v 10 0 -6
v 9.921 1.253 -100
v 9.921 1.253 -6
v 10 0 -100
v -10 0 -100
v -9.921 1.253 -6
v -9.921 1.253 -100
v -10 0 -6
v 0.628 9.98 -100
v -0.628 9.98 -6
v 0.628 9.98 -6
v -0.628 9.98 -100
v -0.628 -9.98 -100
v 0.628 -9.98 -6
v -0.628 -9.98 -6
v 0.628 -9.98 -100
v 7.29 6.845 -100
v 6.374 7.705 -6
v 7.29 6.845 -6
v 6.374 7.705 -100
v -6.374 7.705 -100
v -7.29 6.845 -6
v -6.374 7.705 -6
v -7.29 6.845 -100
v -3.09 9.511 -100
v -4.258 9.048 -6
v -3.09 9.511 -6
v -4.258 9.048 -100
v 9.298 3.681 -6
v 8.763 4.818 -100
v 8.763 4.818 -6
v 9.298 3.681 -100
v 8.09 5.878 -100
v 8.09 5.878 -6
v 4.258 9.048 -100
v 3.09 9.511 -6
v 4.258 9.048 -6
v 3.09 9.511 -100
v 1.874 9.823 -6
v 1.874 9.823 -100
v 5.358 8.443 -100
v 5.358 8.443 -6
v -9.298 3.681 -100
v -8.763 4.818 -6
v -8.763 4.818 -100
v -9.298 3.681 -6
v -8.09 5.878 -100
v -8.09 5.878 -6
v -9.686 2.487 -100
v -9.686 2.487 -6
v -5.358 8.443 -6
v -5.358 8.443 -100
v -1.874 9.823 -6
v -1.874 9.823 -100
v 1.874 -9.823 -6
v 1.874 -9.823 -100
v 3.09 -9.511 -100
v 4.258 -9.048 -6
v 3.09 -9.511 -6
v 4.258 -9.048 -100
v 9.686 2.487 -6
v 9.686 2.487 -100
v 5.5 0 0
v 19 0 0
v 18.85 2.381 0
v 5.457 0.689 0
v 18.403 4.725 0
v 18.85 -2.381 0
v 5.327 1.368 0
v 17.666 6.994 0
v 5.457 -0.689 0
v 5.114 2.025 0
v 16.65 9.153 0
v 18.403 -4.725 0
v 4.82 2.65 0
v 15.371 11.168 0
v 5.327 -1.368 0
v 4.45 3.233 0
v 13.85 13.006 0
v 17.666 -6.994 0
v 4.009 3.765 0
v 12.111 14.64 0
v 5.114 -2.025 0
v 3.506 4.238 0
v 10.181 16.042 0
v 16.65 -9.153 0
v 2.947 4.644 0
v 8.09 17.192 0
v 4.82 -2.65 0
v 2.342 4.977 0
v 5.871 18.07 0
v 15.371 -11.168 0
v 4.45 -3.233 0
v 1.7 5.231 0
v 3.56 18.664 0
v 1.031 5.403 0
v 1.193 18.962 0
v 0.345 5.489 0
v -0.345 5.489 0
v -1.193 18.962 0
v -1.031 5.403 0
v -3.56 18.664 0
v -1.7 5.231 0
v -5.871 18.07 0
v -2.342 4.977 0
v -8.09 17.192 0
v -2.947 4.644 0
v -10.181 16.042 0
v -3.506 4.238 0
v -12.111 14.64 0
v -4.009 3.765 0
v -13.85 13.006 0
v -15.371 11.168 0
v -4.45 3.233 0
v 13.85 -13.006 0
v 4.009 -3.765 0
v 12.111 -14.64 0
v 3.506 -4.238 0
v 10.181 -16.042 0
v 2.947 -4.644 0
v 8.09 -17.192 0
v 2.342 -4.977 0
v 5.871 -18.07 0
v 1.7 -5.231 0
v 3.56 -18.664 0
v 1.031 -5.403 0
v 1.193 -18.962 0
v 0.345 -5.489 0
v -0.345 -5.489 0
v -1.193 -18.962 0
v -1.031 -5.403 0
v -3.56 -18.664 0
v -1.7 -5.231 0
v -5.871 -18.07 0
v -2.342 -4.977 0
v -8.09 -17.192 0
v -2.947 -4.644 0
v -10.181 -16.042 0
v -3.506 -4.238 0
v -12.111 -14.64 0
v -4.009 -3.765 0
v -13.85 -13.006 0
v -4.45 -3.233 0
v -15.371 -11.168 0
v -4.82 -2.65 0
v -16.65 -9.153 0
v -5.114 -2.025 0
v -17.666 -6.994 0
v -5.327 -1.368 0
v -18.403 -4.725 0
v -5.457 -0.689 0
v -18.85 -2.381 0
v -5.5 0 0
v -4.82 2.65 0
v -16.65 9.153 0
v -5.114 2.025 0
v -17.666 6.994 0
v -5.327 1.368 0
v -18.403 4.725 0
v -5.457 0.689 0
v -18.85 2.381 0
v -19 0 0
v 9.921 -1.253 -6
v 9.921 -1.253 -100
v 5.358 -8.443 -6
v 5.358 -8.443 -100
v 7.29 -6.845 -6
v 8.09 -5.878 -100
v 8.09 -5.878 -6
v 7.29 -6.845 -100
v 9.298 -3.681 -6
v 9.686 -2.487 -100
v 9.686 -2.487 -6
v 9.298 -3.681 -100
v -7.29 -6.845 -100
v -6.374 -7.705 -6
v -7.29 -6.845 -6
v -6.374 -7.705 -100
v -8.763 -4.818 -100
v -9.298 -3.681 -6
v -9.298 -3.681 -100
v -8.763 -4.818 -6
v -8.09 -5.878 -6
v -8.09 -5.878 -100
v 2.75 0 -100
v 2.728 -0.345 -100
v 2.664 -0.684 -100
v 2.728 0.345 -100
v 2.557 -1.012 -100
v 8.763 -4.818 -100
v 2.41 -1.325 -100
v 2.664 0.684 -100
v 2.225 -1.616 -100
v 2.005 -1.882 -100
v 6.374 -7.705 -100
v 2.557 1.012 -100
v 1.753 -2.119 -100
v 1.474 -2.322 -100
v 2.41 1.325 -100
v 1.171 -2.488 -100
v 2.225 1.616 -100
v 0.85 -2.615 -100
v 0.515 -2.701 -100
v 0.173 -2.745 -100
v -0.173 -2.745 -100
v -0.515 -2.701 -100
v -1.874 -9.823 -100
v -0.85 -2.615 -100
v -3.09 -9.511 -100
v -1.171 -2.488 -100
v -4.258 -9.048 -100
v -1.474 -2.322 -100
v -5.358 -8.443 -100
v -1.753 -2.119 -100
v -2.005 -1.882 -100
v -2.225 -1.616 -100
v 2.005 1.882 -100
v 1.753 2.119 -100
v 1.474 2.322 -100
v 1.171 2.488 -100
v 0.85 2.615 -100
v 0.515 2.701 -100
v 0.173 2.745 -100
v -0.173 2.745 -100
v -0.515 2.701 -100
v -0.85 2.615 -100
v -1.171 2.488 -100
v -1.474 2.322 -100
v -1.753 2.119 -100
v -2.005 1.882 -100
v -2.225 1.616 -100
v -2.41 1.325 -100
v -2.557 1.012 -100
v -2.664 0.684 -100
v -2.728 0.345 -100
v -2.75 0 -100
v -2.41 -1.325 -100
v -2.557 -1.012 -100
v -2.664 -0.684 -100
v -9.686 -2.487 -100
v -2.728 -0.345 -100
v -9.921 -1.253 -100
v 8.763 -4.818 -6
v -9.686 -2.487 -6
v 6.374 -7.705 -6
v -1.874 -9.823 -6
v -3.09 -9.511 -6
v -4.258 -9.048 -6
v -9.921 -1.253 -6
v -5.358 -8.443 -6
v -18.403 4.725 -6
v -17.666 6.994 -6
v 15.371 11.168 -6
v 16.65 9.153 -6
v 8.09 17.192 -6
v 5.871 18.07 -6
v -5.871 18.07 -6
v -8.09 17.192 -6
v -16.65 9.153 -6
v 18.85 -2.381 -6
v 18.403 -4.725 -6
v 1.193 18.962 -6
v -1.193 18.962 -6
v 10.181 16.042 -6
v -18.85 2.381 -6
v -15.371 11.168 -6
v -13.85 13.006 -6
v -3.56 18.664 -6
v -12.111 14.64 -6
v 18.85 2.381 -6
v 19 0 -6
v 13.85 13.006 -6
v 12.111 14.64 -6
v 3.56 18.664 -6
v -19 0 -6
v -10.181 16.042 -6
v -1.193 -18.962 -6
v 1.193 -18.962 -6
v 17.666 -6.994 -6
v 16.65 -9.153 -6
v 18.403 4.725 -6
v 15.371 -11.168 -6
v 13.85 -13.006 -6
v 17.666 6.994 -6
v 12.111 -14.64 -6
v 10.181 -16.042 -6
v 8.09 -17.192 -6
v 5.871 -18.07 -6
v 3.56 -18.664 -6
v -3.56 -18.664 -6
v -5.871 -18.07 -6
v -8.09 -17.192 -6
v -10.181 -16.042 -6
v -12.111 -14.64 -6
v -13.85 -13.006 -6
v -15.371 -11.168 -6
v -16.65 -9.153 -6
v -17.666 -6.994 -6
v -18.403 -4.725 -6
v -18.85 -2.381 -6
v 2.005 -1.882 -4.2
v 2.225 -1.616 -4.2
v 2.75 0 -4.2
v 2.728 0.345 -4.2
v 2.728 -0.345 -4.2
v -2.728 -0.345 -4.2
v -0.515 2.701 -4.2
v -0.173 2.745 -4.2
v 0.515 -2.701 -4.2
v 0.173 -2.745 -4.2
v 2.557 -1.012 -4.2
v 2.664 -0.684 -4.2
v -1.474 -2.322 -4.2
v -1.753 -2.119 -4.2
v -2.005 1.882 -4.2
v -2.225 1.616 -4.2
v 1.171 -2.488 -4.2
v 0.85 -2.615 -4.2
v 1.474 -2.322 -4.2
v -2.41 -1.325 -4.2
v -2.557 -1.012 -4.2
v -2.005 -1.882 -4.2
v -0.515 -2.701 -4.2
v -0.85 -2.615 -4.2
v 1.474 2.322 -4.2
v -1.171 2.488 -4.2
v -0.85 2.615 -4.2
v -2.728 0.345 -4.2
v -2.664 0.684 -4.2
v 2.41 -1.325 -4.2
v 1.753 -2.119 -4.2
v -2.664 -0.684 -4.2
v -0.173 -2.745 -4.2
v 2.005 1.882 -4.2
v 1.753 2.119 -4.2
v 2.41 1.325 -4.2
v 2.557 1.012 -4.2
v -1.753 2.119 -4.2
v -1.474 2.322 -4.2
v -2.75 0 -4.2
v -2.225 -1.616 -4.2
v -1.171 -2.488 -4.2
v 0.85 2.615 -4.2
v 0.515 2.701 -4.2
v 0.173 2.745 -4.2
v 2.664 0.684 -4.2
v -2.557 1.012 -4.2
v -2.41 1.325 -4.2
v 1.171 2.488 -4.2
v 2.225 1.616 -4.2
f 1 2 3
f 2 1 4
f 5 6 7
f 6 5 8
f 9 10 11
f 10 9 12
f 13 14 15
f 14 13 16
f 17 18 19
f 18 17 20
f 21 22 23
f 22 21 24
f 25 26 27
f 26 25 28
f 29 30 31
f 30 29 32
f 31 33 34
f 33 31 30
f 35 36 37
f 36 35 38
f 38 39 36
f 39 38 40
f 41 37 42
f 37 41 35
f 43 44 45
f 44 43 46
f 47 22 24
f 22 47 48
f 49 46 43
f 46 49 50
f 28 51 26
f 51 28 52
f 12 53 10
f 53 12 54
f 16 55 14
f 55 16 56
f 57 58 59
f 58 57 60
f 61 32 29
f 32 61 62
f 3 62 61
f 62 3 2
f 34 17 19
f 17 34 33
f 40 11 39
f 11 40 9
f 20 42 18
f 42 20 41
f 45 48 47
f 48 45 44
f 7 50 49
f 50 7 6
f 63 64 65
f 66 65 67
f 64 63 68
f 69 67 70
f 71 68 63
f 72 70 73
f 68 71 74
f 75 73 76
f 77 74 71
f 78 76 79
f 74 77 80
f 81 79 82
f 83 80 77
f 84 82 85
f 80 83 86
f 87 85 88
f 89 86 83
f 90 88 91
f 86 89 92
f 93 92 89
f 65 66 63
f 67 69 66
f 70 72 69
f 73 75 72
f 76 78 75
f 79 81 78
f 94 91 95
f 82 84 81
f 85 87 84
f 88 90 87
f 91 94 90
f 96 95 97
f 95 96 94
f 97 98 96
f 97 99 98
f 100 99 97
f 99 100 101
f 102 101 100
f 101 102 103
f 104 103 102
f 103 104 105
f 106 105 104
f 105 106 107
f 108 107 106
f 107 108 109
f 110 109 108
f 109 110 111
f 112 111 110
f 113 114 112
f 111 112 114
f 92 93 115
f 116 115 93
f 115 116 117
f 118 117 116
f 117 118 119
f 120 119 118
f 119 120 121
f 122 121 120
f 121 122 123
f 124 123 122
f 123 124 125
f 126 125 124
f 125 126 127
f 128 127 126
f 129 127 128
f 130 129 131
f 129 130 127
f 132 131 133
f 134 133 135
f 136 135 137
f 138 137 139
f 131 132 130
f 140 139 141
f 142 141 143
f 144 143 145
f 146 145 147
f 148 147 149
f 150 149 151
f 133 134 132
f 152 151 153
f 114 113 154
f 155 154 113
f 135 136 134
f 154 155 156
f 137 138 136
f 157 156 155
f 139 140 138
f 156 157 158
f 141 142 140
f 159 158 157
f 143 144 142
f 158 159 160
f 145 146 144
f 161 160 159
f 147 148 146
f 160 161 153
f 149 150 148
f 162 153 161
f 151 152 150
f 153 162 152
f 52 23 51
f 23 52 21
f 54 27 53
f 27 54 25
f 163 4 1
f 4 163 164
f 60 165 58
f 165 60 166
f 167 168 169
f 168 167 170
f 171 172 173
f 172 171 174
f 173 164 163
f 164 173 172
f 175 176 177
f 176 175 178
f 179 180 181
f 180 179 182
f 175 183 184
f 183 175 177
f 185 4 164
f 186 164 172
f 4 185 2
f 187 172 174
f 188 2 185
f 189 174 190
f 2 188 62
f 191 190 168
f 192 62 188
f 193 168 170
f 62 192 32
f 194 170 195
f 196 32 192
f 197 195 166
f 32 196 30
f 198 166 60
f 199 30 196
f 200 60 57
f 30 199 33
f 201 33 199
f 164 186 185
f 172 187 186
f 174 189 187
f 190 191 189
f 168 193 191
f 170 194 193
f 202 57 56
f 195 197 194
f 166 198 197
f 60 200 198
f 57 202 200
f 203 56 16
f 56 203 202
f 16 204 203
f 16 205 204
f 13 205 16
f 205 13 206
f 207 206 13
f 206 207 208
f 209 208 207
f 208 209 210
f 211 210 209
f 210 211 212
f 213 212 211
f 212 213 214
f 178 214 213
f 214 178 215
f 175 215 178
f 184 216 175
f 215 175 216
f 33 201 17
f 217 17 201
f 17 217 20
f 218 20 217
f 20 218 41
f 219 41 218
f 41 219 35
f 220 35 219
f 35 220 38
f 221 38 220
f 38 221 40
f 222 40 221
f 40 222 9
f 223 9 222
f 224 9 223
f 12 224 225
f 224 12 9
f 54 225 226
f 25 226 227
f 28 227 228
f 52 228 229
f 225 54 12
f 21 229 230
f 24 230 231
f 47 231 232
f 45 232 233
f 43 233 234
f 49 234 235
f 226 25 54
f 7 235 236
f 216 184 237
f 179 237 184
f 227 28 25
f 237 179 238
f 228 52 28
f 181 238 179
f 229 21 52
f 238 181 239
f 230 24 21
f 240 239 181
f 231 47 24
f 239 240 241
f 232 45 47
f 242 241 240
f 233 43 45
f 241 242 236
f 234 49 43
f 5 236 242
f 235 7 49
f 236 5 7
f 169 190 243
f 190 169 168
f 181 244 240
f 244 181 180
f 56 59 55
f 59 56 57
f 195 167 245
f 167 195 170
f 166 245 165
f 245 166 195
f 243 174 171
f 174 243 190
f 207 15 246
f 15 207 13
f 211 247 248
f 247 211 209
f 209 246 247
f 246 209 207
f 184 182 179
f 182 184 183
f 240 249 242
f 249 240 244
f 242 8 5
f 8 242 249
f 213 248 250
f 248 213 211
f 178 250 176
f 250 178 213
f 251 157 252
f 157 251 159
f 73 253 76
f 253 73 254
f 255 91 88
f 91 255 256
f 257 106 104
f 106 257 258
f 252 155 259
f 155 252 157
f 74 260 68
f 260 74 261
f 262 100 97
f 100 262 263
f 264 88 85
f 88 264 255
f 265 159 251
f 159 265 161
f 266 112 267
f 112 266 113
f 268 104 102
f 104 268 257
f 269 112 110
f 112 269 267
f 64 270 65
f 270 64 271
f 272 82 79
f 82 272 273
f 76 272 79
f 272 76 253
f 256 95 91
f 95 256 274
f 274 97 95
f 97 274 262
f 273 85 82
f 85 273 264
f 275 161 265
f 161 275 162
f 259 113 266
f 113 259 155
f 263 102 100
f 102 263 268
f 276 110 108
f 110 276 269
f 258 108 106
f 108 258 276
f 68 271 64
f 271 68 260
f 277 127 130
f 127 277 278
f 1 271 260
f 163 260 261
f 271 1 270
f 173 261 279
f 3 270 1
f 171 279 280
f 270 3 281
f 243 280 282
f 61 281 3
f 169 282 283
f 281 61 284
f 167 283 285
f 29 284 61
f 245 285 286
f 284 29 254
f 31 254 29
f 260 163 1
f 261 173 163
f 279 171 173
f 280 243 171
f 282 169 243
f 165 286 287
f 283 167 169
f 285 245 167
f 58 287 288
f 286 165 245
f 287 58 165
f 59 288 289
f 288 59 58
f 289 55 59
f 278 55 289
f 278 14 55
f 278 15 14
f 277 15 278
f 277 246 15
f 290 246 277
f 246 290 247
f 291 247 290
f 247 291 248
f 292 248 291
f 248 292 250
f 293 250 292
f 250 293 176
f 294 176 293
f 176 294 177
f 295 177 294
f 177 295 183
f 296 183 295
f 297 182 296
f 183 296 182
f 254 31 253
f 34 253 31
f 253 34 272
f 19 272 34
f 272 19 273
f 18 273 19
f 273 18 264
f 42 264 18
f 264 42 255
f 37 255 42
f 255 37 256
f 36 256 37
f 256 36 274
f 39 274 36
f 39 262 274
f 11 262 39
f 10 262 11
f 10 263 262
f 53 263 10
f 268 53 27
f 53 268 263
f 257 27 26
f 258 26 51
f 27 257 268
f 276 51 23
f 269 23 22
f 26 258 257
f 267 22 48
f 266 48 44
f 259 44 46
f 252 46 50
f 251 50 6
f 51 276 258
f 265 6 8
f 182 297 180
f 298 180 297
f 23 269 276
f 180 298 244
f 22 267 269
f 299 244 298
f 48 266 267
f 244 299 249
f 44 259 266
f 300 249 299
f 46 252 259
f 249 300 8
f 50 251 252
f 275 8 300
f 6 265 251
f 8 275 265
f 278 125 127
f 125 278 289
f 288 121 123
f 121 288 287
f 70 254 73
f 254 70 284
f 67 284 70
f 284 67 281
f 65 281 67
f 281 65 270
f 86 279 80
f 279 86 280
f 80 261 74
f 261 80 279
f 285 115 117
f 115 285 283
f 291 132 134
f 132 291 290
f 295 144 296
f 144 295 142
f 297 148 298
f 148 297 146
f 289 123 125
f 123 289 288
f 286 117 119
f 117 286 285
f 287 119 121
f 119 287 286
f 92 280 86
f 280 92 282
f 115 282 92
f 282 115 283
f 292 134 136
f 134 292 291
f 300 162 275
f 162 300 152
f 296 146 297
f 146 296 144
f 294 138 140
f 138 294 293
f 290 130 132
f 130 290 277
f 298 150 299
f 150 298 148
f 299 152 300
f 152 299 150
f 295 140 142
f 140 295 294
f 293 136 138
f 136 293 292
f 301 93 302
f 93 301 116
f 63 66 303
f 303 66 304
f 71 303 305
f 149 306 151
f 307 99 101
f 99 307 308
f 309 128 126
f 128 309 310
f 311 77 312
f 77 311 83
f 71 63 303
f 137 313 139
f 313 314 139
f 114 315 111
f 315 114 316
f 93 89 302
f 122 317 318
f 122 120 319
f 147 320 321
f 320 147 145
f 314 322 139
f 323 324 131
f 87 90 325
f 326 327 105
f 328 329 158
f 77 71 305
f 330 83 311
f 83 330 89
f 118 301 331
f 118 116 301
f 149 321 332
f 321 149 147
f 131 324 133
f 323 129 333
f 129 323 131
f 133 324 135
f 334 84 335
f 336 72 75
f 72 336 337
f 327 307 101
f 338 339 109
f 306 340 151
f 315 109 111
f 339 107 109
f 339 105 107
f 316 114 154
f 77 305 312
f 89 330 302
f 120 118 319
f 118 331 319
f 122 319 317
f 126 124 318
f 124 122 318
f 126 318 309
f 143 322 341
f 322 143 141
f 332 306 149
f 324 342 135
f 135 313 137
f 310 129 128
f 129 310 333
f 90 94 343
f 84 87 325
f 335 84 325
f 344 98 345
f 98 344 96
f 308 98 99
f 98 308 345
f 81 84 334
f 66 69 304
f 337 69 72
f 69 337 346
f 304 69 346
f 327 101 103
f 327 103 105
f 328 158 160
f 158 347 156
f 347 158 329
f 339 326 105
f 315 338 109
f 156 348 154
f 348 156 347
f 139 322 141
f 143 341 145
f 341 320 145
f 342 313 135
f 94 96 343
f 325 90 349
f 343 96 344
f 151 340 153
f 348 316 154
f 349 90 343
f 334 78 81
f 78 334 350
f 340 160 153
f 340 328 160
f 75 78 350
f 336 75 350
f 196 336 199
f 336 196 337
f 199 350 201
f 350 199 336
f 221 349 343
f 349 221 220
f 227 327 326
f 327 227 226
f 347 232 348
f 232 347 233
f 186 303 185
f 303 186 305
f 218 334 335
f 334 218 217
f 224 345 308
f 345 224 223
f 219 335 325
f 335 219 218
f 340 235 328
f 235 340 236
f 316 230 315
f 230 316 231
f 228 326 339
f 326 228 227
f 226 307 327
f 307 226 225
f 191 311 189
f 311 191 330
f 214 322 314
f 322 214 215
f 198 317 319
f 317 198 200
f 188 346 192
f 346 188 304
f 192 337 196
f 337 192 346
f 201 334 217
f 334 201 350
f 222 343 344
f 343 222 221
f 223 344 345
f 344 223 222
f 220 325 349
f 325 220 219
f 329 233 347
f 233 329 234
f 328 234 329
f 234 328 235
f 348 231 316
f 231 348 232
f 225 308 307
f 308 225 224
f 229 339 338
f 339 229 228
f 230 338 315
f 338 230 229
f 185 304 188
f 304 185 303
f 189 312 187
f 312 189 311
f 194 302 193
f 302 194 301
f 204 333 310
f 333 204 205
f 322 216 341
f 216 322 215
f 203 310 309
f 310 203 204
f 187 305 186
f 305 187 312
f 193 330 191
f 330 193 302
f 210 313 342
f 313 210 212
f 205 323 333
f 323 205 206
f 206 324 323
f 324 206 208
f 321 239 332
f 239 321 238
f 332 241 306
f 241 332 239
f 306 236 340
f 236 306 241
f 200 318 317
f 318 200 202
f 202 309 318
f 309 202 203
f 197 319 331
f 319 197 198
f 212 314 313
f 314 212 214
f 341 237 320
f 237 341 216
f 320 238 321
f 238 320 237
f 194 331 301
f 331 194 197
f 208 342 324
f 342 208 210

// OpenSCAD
$fn = 50;


difference() {
	union() {
		translate(v = [0, 0, -100.0000000000]) {
			cylinder(h = 100, r = 10.0000000000);
		}
		translate(v = [0, 0, -6.0000000000]) {
			cylinder(h = 6, r = 19.0000000000);
		}
	}
	union() {
		translate(v = [0, 0, 0]) {
			rotate(a = [0, 0, 0]) {
				difference() {
					union() {
						#translate(v = [0, 0, -100.0000000000]) {
							cylinder(h = 100, r = 2.2500000000);
						}
						#translate(v = [0, 0, -4.2000000000]) {
							cylinder(h = 4.2000000000, r1 = 2.7500000000, r2 = 5.5000000000);
						}
						#translate(v = [0, 0, -100.0000000000]) {
							cylinder(h = 100, r = 2.7500000000);
						}
						#translate(v = [0, 0, -100.0000000000]) {
							cylinder(h = 100, r = 2.2500000000);
						}
					}
					union();
				}
			}
		}
	}
}
